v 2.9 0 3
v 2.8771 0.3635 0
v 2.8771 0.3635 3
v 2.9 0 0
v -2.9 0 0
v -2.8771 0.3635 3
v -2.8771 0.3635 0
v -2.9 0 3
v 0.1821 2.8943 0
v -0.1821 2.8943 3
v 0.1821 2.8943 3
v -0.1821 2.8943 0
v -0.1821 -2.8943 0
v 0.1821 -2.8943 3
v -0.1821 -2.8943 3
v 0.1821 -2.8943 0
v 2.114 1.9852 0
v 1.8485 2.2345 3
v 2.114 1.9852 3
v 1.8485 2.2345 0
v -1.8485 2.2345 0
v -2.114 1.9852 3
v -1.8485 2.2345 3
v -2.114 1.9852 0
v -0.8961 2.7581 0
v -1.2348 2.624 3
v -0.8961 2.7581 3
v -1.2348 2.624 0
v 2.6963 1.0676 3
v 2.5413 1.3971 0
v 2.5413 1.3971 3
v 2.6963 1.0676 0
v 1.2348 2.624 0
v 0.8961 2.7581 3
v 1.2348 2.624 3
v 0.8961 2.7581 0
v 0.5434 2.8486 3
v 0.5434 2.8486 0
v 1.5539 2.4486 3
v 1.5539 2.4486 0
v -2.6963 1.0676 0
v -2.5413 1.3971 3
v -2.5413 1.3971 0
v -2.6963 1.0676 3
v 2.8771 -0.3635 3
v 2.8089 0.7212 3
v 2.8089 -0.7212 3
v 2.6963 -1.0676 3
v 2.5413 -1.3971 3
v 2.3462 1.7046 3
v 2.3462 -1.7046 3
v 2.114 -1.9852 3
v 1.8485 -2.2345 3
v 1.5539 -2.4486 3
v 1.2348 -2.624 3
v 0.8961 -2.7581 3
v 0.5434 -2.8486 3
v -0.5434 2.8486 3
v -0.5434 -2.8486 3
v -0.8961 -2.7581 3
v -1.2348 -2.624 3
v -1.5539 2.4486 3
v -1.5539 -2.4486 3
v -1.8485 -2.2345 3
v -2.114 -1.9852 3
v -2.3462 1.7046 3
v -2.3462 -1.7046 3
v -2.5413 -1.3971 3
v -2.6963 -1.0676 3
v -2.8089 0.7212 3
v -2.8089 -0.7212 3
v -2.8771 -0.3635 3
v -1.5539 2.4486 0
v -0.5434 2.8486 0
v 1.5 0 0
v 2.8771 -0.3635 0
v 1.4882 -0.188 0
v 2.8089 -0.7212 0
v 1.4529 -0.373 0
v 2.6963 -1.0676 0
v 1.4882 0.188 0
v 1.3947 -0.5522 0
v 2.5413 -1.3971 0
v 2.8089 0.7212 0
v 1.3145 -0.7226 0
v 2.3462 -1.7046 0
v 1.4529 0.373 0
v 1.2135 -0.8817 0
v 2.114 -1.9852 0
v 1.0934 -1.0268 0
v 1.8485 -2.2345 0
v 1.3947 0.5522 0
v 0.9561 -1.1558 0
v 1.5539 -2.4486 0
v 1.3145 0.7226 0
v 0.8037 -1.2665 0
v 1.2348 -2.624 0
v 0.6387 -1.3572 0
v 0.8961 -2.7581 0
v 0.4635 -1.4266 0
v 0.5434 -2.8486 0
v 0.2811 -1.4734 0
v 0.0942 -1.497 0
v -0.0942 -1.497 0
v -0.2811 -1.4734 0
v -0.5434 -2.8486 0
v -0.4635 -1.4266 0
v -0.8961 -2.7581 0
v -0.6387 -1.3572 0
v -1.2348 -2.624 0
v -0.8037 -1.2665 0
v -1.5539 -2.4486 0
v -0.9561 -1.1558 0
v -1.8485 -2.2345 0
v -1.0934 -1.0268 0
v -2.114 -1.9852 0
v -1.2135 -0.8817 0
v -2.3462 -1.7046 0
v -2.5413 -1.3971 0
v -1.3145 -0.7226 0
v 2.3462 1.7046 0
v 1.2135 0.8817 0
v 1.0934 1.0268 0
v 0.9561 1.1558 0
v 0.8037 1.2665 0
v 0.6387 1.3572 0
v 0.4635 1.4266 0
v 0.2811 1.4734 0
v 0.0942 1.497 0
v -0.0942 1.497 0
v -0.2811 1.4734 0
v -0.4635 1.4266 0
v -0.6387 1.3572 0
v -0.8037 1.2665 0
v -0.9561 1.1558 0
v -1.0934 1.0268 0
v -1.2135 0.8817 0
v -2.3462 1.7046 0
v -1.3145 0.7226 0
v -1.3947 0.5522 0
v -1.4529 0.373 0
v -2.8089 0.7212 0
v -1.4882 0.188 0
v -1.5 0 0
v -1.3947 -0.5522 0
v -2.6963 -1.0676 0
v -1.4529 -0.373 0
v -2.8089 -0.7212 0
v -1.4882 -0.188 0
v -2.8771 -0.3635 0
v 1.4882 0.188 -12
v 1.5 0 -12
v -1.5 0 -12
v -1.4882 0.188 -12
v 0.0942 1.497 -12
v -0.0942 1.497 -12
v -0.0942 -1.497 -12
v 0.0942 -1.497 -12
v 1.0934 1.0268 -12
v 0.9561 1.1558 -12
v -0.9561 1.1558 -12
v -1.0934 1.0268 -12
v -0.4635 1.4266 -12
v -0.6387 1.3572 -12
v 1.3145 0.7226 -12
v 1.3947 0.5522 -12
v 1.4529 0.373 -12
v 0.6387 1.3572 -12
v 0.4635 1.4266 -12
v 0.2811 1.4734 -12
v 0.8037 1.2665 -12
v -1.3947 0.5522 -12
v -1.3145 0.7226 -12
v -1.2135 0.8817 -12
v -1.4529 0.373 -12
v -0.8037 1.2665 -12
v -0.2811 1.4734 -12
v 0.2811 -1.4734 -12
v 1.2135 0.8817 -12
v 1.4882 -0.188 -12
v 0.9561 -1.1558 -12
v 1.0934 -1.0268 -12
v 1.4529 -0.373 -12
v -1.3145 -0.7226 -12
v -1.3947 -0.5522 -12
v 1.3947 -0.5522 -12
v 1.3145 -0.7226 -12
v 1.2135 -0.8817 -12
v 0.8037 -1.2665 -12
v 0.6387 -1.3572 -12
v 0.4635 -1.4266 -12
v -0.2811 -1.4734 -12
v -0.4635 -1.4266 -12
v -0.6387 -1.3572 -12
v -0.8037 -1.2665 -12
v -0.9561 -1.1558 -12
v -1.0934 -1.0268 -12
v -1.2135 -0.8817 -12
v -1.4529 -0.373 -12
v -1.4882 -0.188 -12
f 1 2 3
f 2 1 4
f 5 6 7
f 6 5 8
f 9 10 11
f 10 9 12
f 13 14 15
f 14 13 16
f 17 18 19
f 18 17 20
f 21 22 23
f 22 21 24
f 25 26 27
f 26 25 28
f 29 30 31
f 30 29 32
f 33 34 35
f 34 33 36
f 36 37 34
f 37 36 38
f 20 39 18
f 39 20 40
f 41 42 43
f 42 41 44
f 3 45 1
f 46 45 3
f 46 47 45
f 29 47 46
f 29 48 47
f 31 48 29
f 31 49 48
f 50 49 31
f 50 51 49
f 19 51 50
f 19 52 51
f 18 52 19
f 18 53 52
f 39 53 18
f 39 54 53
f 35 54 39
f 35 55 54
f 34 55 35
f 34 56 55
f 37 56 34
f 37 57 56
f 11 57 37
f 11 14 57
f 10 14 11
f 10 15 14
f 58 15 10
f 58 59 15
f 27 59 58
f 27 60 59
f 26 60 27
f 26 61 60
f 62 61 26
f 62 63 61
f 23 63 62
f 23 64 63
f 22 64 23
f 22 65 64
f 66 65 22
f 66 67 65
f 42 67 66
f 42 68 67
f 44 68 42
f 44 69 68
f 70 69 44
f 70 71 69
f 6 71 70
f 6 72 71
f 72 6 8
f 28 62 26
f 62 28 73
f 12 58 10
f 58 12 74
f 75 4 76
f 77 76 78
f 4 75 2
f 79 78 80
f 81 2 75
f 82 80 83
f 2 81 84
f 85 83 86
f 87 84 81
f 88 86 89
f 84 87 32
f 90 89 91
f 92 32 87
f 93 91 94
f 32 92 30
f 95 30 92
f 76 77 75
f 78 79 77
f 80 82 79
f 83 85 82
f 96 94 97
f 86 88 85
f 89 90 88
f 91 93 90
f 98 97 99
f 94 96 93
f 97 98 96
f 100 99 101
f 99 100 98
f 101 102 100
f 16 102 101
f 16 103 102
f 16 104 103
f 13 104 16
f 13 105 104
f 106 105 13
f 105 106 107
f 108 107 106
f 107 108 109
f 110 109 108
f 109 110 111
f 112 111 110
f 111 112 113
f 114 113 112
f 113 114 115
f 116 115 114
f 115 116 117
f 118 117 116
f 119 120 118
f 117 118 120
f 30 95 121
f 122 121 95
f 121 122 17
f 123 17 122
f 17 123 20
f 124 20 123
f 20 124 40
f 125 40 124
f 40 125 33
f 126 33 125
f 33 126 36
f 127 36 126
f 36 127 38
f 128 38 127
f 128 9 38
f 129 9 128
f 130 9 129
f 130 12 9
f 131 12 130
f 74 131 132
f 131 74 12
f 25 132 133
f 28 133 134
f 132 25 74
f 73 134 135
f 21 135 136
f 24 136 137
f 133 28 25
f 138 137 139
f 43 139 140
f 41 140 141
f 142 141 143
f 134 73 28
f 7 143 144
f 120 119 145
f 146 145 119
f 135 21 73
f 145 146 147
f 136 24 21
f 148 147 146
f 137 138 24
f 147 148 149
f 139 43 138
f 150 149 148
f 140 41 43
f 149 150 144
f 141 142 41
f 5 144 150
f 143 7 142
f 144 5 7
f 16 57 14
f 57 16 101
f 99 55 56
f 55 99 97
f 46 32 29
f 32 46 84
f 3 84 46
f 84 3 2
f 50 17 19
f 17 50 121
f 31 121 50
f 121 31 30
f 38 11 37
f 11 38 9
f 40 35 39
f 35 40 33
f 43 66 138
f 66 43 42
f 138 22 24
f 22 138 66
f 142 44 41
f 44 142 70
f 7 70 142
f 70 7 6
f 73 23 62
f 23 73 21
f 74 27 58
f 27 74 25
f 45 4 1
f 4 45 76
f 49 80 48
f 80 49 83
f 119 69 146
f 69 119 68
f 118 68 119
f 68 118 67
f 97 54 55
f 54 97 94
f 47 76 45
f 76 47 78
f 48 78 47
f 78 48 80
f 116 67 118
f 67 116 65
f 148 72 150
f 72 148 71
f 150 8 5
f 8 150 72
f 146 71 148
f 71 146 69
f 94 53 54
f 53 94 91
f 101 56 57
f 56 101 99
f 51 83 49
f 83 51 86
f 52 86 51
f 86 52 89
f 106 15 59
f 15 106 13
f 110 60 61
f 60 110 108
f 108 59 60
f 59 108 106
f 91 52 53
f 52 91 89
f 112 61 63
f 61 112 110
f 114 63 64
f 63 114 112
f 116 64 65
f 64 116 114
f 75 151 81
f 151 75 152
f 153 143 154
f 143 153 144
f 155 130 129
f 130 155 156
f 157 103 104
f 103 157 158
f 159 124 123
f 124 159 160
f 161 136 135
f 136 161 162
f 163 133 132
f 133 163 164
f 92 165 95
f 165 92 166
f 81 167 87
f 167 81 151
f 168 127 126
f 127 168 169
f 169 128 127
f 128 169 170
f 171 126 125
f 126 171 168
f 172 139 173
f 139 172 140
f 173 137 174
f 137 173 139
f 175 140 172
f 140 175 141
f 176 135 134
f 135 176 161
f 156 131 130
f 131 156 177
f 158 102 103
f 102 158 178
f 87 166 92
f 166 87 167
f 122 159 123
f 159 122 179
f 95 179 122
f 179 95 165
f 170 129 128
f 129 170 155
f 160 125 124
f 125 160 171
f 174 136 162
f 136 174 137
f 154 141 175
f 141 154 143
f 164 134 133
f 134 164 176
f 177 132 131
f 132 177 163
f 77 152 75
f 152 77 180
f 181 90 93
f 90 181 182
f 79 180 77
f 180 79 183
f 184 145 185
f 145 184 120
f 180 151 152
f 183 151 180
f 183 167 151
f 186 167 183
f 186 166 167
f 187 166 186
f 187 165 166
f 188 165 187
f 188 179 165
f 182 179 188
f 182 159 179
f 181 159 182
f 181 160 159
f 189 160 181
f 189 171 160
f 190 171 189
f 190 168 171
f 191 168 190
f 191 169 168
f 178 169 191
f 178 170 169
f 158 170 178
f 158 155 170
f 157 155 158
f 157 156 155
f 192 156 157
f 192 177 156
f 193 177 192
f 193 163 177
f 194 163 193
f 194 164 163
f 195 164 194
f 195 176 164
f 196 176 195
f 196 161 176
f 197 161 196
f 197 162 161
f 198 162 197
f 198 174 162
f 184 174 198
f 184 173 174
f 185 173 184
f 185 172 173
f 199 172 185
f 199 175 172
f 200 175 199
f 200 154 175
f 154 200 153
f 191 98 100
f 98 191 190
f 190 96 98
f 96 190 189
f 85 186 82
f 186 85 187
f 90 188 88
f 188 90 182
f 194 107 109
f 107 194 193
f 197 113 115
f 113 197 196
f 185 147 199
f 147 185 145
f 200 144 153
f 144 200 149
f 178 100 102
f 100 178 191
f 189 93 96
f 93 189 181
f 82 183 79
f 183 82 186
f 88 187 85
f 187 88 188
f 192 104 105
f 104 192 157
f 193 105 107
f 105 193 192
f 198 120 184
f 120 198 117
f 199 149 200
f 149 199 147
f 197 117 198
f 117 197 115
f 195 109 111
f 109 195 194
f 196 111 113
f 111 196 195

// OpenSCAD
$fn = 50;


difference() {
	union() {
		translate(v = [0, 0, 0]) {
			rotate(a = [0, 0, 0]) {
				cylinder(h = 3, r = 2.9000000000);
			}
		}
		translate(v = [0, 0, -12]) {
			rotate(a = [0, 0, 0]) {
				cylinder(h = 12, r = 1.5000000000);
			}
		}
	}
	union();
}
